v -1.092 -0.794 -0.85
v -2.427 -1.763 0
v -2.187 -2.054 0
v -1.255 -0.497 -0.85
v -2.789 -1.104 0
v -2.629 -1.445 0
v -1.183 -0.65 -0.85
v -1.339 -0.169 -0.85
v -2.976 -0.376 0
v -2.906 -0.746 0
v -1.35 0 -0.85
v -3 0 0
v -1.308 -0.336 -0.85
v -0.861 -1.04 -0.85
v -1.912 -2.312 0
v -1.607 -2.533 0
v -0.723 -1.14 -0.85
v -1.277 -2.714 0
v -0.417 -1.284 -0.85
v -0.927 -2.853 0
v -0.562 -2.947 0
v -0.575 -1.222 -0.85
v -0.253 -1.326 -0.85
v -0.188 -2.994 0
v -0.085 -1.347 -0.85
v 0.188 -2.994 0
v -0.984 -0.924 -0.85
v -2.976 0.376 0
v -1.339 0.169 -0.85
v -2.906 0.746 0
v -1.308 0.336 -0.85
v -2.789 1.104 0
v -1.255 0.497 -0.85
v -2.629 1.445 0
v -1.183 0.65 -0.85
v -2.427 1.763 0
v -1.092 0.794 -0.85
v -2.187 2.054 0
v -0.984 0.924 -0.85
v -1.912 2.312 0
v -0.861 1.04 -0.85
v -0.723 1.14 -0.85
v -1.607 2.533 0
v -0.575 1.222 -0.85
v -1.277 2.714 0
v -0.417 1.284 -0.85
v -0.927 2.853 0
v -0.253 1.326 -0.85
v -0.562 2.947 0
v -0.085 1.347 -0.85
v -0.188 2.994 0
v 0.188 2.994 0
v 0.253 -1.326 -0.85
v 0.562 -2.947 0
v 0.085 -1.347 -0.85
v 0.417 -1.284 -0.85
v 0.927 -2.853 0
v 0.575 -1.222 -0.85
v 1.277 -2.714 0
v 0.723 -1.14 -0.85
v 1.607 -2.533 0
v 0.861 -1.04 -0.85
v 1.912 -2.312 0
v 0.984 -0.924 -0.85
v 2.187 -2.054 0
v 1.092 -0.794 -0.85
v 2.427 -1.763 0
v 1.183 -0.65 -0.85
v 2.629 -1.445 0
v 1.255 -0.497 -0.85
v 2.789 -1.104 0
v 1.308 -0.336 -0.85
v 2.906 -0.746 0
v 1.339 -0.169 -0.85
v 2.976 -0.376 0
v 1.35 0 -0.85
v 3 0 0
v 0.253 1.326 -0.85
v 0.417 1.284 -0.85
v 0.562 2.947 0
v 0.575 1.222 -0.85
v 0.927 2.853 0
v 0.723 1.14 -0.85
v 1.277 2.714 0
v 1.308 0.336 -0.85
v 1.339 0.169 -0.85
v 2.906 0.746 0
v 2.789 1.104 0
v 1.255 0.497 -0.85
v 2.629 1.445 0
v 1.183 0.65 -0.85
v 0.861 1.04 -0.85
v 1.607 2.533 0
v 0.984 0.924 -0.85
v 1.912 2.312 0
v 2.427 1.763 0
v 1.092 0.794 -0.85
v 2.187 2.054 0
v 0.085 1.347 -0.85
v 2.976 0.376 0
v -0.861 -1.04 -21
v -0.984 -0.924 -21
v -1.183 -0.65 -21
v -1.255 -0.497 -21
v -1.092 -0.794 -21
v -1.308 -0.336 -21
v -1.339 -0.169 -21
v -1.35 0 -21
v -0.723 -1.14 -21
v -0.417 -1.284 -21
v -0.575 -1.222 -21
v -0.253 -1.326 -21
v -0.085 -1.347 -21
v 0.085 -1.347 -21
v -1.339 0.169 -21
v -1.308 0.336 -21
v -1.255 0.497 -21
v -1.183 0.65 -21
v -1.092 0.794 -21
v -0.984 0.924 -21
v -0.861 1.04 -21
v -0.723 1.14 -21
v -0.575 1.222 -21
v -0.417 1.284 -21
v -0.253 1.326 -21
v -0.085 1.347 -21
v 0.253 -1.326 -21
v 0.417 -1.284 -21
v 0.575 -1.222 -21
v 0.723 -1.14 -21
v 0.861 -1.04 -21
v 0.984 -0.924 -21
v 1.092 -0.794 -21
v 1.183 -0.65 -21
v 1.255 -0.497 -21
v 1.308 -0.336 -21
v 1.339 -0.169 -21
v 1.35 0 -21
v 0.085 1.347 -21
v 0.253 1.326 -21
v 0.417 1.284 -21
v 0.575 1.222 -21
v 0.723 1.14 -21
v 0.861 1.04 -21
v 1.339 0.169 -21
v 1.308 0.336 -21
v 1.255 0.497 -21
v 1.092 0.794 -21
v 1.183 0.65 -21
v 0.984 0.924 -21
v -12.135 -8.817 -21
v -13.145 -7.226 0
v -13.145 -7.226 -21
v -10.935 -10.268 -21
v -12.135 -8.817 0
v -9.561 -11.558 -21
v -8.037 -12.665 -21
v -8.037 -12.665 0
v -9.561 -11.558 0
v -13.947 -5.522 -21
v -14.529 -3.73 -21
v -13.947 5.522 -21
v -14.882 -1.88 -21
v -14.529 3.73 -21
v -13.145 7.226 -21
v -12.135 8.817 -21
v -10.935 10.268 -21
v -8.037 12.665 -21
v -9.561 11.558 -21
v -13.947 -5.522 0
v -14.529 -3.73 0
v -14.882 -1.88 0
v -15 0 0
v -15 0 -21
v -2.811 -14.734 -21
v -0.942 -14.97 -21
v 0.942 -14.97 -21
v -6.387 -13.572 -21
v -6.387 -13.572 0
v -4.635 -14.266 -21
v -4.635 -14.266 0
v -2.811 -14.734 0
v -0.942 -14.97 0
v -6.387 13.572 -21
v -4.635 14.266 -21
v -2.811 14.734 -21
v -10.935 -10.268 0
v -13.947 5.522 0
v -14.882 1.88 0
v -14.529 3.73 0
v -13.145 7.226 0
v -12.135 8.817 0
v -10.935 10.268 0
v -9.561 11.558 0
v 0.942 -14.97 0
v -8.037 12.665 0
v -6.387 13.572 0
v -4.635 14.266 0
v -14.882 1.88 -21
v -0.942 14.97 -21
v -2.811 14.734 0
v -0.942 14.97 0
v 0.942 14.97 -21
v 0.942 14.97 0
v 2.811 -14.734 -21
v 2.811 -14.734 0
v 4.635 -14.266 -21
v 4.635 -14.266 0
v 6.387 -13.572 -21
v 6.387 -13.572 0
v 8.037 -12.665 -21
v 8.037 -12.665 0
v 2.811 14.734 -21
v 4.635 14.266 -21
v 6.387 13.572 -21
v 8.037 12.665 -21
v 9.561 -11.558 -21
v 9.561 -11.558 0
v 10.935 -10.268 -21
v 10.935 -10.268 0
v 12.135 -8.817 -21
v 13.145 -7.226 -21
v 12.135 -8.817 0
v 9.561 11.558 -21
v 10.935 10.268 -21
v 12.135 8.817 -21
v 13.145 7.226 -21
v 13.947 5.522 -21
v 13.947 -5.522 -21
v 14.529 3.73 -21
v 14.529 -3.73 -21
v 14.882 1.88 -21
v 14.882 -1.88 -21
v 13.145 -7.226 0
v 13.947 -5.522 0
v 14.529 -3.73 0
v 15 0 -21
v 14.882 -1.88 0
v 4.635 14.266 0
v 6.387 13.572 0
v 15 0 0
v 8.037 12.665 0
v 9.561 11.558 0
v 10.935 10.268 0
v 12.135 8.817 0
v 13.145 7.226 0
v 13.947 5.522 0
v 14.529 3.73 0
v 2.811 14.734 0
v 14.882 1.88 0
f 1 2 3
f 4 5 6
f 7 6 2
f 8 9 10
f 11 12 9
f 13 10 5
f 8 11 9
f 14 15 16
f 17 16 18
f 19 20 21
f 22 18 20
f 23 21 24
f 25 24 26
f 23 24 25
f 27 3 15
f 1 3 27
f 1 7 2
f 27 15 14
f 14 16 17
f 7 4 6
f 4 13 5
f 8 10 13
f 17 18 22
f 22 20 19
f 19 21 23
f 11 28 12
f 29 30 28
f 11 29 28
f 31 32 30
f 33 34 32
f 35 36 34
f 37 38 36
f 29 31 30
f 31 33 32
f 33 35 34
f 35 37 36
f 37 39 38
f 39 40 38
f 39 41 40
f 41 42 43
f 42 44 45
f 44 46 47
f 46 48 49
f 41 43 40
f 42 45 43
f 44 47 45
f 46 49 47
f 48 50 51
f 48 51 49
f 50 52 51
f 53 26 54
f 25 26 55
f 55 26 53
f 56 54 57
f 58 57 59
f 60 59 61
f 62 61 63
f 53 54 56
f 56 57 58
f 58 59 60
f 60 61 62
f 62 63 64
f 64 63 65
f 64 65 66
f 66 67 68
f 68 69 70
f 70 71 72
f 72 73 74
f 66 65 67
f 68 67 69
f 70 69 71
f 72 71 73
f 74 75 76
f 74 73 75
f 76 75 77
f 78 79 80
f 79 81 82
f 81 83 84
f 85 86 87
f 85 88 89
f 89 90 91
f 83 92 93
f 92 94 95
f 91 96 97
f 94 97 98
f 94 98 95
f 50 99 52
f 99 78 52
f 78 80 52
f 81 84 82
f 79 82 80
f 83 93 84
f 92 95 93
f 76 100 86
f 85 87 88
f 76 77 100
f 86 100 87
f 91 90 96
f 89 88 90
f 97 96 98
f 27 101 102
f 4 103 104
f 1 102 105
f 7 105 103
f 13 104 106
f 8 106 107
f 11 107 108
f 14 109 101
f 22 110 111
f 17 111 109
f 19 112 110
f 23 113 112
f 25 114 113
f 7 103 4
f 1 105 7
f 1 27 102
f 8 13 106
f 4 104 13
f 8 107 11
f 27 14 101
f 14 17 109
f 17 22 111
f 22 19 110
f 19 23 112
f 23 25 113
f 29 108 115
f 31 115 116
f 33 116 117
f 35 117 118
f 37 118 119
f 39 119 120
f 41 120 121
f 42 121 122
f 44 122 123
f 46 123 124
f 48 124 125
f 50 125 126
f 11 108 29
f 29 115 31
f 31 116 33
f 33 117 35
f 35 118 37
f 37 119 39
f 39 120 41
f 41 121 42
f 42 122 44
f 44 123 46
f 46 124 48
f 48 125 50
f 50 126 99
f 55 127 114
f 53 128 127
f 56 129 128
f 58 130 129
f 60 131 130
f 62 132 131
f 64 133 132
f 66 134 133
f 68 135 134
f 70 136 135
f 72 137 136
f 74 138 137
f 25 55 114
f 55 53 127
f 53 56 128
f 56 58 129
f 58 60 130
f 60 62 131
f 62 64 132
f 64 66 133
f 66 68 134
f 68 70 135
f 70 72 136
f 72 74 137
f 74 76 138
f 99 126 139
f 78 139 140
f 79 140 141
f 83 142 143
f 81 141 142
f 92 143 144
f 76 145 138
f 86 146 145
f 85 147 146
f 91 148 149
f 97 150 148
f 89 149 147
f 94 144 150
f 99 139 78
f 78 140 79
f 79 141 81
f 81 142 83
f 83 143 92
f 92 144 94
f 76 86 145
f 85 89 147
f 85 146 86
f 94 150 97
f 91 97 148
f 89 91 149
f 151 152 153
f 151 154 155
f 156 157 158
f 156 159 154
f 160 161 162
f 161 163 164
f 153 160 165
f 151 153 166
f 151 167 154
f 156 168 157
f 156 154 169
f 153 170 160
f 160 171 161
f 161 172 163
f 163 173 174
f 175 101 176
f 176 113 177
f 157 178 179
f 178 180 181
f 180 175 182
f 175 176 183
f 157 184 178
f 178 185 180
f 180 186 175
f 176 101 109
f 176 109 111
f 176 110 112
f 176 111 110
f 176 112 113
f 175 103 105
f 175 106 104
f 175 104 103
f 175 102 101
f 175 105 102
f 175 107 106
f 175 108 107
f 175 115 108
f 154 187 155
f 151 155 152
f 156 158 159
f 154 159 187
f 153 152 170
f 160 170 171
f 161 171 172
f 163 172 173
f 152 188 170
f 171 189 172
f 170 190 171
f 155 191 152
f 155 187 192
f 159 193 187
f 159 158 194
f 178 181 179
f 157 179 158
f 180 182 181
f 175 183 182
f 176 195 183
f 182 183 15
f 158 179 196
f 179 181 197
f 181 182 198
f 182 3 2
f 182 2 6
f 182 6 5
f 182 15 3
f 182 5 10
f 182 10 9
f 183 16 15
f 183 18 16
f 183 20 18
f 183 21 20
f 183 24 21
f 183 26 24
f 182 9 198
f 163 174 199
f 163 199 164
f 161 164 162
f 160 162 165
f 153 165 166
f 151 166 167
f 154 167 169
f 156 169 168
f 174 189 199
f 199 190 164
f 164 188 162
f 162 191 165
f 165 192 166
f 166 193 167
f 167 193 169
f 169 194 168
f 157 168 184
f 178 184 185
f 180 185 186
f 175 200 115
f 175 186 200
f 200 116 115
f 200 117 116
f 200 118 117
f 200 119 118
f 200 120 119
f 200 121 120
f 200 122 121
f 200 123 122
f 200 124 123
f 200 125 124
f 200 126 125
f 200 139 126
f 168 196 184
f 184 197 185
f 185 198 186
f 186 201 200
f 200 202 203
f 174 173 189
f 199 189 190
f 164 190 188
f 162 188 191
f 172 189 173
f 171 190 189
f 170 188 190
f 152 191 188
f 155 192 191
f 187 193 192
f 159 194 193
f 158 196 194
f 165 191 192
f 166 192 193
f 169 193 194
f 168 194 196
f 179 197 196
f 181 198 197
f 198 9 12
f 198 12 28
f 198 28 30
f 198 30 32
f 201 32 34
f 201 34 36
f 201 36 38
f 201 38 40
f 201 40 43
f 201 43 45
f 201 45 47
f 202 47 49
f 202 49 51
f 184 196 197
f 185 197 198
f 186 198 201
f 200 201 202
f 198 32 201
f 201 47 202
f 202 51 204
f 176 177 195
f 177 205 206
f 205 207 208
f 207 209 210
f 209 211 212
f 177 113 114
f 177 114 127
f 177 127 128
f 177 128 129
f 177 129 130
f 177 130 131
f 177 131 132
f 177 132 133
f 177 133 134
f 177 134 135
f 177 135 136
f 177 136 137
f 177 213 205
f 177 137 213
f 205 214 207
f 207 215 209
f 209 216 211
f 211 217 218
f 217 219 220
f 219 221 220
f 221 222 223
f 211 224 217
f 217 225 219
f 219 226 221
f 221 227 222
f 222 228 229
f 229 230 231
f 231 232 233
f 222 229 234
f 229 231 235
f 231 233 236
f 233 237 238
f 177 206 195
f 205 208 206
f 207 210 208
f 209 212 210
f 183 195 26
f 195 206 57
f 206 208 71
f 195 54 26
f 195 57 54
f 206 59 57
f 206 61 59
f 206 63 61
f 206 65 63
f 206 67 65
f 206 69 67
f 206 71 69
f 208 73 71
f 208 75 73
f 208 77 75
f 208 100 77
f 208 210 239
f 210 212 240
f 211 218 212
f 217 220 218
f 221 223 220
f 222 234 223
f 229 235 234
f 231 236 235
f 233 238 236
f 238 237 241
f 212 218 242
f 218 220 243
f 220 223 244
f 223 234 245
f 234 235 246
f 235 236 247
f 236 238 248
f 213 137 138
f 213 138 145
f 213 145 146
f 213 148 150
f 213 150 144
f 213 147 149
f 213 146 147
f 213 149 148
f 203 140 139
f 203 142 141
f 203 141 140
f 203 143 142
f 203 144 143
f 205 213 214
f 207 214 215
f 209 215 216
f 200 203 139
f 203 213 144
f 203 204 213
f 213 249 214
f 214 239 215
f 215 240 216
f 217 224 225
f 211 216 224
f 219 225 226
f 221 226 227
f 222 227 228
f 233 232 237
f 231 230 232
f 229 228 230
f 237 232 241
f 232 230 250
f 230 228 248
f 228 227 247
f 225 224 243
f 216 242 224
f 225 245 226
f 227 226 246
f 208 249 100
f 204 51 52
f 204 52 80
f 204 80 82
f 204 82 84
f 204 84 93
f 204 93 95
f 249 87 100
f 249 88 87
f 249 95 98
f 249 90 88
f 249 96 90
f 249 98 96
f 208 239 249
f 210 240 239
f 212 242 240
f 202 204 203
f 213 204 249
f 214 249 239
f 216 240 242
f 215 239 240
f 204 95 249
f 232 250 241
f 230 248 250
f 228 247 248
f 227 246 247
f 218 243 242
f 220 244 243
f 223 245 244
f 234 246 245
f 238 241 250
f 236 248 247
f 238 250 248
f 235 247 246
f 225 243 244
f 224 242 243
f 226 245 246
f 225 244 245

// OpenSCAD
$fn = 50;


difference() {
	union() {
		translate(v = [0, 0, -21.0000000000]) {
			cylinder(h = 21, r = 15.0000000000);
		}
	}
	union() {
		translate(v = [0, 0, 0]) {
			rotate(a = [0, 0, 0]) {
				difference() {
					union() {
						translate(v = [0, 0, -24.0000000000]) {
							cylinder(h = 24, r = 1.0000000000);
						}
						translate(v = [0, 0, -0.8500000000]) {
							cylinder(h = 0.8500000000, r1 = 1.3500000000, r2 = 3.0000000000);
						}
						translate(v = [0, 0, -24.0000000000]) {
							cylinder(h = 24, r = 1.3500000000);
						}
						translate(v = [0, 0, -24.0000000000]) {
							cylinder(h = 24, r = 1.0000000000);
						}
					}
					union();
				}
			}
		}
	}
}
